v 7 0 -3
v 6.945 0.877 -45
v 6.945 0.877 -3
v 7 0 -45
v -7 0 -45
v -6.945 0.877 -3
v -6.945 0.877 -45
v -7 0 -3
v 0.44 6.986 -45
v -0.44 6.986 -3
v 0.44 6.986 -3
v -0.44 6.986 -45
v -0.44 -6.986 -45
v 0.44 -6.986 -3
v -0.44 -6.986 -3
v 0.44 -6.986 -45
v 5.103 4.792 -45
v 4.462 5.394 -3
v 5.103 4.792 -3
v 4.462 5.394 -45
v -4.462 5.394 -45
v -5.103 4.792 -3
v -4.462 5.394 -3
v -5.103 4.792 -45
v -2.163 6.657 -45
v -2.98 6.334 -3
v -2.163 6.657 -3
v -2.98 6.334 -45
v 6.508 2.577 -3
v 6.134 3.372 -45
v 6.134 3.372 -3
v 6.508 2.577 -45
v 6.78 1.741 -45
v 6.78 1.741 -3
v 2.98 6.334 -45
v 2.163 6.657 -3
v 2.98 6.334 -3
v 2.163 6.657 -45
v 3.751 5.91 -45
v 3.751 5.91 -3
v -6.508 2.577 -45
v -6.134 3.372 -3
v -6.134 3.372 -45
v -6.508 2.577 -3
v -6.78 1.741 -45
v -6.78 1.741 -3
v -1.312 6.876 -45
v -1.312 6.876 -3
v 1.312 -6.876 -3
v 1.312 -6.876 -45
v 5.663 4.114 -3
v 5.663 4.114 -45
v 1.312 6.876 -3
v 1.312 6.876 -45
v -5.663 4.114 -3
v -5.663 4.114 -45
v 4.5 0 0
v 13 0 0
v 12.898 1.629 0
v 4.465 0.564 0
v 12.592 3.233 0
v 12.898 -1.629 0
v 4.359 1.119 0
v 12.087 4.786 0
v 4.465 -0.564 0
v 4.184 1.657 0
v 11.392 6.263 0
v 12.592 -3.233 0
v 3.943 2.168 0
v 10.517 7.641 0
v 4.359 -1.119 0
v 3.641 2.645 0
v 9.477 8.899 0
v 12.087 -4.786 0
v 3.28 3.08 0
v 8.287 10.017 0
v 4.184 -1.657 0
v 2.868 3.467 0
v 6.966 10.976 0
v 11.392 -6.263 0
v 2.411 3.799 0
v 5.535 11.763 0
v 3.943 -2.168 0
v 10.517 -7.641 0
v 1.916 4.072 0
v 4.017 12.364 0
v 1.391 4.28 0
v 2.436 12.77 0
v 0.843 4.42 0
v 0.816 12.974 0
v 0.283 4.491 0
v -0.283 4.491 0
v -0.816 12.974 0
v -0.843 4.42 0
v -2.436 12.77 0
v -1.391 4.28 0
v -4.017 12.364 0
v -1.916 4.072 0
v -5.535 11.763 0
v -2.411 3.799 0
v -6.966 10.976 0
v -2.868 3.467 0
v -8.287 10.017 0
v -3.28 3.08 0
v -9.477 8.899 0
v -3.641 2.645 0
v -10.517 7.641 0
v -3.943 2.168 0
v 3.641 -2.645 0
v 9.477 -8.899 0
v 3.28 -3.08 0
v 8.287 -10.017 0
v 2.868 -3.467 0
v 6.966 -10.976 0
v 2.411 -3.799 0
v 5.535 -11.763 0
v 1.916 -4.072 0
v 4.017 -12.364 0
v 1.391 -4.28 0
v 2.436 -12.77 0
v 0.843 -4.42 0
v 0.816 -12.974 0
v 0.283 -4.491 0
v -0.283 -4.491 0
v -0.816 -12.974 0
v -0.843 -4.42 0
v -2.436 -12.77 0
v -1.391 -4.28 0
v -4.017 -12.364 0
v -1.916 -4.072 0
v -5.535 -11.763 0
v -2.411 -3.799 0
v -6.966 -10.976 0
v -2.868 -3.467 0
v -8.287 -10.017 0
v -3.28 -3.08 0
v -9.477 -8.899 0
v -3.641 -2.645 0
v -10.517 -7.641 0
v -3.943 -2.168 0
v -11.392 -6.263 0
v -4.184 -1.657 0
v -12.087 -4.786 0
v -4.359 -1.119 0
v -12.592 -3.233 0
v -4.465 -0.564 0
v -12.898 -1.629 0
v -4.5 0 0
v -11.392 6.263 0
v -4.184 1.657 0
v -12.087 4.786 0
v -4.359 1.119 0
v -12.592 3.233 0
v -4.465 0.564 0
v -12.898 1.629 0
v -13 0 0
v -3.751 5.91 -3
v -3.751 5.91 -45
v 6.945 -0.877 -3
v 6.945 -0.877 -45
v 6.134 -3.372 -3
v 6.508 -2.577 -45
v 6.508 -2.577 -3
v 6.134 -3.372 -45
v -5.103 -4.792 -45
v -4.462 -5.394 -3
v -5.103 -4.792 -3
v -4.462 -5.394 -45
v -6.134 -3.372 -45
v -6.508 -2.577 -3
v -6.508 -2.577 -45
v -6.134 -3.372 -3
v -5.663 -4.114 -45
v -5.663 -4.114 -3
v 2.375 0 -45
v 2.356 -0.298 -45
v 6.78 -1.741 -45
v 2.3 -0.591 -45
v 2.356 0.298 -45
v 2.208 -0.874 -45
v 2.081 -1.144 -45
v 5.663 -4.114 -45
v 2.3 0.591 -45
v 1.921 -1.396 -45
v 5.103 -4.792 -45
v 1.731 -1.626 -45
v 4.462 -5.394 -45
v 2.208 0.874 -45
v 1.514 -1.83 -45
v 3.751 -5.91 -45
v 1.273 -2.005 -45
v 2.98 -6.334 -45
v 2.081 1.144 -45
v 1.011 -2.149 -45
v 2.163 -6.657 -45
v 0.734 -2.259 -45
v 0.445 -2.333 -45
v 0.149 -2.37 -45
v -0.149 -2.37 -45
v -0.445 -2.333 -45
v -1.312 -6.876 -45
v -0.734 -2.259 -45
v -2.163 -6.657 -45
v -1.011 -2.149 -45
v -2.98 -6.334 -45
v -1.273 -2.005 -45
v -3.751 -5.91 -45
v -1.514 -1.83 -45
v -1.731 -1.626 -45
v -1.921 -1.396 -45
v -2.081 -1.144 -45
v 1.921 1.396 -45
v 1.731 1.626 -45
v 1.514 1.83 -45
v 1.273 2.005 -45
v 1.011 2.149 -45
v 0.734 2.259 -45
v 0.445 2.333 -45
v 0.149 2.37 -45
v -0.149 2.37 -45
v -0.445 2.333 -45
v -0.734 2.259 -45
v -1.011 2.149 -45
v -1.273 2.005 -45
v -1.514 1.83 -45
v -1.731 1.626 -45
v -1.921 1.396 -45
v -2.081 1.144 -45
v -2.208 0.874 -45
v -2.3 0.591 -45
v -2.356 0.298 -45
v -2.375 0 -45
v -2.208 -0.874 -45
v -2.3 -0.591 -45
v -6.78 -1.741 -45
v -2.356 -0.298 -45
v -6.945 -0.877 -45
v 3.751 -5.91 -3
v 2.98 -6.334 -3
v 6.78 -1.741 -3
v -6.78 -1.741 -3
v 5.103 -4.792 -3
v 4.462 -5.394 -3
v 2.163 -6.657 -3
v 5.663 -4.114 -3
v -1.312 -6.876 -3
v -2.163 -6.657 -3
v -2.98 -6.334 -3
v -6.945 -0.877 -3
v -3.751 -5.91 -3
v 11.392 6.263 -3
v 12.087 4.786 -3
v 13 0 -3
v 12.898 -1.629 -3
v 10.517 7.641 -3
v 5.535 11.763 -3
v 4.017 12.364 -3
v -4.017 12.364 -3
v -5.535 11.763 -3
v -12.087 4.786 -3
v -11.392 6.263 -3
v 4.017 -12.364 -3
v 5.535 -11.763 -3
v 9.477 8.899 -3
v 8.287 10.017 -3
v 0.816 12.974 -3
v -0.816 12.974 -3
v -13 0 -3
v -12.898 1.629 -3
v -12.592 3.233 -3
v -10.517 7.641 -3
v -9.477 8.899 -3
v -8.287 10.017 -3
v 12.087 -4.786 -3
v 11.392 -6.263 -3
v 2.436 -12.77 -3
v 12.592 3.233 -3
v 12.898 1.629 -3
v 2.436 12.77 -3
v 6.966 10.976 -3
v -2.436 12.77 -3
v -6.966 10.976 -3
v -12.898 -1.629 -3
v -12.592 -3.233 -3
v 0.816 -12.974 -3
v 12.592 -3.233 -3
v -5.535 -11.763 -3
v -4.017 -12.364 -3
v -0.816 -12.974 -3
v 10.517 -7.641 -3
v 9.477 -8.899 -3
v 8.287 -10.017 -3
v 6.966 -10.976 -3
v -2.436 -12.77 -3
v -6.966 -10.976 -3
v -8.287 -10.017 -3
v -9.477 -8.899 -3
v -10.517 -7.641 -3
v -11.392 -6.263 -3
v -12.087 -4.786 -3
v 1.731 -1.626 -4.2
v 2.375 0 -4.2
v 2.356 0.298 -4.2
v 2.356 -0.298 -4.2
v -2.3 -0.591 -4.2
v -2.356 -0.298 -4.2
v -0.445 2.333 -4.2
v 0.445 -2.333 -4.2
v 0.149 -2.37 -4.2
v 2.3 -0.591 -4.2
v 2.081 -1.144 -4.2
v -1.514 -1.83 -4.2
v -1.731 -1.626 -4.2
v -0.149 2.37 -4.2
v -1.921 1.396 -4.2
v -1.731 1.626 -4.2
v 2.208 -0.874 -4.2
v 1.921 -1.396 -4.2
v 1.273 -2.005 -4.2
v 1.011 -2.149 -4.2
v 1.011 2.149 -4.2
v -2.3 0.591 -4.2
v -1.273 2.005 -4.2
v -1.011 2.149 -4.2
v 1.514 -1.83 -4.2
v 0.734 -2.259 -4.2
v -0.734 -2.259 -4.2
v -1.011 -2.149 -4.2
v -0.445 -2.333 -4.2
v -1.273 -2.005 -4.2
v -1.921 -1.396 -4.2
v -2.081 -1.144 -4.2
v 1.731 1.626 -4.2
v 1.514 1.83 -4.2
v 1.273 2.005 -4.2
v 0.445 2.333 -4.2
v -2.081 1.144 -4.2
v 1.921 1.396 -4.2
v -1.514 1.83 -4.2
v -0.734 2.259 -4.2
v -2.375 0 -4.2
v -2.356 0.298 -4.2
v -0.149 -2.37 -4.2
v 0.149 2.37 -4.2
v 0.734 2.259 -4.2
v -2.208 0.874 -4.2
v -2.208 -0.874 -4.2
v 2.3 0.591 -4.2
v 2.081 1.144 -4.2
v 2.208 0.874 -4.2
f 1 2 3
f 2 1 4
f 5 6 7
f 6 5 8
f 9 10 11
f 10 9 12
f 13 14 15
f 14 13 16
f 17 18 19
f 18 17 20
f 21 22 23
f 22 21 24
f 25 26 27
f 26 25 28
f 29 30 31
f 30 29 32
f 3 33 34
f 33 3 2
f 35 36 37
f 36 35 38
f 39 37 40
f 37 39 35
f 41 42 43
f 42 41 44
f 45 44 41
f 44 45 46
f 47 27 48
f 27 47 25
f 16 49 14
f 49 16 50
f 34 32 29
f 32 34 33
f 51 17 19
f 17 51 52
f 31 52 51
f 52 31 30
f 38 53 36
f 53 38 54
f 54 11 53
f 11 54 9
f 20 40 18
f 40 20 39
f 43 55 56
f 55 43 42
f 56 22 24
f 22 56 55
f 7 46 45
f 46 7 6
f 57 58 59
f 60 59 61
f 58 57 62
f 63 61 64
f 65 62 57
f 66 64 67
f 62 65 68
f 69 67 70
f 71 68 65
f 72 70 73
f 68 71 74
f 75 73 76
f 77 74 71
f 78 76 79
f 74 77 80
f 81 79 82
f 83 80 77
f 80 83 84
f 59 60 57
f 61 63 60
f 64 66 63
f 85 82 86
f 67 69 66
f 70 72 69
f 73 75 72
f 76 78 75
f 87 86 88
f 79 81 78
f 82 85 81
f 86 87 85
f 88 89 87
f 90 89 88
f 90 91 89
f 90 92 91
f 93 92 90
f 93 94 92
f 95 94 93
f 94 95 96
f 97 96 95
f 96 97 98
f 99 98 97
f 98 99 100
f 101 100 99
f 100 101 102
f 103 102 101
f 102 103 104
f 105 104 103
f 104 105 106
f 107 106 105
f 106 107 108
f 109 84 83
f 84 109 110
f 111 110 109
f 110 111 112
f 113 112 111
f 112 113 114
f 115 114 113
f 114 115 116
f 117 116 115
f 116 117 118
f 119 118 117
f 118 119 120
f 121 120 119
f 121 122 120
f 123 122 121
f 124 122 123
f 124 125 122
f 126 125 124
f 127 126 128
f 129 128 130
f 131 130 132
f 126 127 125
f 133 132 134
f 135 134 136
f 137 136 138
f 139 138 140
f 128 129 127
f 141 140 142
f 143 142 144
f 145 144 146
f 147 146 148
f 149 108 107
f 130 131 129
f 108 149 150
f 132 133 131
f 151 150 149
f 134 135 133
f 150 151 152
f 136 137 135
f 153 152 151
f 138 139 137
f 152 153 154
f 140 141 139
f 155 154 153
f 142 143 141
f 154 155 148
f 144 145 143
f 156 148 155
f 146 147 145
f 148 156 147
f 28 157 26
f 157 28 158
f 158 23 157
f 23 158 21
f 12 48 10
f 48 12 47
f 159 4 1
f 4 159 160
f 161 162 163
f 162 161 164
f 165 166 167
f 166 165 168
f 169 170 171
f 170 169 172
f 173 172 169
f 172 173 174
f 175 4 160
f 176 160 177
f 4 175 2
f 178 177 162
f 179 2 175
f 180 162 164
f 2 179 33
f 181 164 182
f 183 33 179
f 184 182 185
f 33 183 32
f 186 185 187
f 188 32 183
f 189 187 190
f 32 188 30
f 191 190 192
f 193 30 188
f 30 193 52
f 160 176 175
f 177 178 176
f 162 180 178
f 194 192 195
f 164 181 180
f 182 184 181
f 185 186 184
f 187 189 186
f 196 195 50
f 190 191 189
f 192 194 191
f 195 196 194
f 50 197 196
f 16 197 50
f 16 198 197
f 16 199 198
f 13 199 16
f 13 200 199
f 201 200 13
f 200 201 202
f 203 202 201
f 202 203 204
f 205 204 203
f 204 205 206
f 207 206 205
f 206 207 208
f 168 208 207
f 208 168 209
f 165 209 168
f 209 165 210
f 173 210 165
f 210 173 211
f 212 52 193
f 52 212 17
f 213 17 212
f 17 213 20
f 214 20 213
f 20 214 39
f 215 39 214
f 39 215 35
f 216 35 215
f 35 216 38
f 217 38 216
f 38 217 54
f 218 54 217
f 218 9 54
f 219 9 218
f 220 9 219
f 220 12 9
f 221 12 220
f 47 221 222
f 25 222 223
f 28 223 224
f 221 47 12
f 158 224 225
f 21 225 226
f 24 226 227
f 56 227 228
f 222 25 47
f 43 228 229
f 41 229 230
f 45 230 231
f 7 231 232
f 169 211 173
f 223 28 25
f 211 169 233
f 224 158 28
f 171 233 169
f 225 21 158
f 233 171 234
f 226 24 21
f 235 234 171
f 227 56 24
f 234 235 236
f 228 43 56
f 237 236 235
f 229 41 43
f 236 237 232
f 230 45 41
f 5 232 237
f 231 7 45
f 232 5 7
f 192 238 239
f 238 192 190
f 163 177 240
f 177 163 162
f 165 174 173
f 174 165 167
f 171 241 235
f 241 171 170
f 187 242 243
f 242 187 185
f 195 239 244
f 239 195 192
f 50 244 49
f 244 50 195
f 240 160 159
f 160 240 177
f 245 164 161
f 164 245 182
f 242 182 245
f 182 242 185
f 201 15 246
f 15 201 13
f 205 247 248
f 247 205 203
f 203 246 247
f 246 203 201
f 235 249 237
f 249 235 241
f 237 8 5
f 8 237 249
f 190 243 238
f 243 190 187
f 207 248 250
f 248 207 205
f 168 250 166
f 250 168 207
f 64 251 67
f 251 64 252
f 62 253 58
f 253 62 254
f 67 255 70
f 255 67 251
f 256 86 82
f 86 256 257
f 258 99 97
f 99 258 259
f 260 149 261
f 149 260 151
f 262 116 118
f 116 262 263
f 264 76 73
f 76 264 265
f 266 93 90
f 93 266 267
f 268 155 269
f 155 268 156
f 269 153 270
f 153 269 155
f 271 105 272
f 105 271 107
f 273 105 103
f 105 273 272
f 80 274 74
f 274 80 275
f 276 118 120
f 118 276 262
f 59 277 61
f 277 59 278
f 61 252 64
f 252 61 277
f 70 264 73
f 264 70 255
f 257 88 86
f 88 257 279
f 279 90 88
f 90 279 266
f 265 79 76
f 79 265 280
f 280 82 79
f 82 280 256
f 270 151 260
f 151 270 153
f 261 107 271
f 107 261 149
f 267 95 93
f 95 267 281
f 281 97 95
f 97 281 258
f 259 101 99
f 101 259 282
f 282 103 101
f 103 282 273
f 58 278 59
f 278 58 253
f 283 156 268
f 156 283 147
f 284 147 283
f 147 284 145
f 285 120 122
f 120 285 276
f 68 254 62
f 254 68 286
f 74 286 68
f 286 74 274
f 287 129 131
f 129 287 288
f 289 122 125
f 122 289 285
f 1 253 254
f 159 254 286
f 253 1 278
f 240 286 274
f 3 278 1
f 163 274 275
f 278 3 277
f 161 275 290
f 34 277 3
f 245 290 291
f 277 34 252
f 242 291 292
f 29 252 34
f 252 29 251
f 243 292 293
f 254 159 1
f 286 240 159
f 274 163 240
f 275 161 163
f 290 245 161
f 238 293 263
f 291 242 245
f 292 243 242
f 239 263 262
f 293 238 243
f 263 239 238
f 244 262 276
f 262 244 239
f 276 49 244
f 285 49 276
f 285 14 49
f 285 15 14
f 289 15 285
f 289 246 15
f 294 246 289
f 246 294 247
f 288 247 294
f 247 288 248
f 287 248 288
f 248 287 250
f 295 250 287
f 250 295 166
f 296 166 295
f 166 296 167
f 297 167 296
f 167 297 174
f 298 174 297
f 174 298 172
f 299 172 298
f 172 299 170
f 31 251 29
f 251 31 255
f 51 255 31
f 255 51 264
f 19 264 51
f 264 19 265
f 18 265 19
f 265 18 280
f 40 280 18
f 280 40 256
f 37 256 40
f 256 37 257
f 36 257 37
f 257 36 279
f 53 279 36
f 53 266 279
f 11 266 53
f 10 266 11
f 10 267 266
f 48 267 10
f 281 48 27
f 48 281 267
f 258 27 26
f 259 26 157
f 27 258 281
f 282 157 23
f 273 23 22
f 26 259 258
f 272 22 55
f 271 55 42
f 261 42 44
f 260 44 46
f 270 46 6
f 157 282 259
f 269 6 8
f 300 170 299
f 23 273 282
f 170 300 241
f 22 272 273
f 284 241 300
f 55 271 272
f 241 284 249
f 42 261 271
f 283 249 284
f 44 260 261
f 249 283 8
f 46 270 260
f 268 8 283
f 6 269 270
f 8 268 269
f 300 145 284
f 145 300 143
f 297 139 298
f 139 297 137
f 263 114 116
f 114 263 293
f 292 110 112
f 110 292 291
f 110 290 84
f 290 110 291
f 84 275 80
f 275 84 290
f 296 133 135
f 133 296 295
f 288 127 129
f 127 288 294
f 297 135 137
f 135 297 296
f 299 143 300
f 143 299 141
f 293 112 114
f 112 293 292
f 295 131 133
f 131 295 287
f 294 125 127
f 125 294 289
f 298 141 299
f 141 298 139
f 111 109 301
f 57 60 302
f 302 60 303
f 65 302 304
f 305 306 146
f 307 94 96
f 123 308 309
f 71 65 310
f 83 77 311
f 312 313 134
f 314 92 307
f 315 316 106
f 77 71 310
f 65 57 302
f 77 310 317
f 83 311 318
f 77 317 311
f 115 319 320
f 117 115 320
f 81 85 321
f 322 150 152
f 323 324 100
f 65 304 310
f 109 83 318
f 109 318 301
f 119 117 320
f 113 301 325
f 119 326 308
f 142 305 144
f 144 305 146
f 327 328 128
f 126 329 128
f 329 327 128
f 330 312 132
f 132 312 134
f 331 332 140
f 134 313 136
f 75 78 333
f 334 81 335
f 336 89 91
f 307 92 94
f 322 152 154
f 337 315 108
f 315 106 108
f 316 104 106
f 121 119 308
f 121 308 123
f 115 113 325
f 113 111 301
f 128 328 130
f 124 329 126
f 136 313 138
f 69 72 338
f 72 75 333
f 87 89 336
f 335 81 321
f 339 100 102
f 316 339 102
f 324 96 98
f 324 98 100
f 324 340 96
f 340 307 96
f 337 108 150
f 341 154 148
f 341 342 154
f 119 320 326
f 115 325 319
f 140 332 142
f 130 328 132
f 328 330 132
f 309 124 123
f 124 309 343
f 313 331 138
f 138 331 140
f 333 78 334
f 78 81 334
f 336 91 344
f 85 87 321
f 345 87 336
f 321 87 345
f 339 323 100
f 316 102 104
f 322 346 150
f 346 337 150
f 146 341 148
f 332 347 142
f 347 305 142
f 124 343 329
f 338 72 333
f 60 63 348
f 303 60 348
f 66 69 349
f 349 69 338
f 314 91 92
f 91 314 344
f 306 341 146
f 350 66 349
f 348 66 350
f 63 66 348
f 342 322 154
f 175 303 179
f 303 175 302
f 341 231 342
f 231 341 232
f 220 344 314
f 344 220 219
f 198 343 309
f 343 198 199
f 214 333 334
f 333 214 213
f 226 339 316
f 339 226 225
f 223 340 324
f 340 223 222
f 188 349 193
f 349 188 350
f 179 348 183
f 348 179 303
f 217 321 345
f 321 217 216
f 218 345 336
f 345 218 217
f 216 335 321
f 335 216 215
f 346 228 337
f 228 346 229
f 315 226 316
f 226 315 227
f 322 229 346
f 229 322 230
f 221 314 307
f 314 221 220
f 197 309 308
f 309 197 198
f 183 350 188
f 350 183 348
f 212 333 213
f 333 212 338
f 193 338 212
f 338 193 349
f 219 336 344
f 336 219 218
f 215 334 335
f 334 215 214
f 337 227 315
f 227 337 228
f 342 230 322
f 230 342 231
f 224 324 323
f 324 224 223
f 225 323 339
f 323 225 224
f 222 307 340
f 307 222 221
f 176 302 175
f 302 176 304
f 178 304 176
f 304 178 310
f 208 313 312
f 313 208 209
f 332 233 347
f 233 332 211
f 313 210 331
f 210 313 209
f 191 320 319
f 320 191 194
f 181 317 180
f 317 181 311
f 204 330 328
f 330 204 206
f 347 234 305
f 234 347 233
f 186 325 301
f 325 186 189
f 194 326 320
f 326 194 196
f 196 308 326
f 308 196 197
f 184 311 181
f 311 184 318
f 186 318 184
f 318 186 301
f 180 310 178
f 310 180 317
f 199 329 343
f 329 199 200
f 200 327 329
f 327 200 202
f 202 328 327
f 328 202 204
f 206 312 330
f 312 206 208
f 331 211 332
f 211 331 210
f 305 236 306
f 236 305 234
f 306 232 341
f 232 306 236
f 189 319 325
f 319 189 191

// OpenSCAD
$fn = 50;


difference() {
	union() {
		translate(v = [0, 0, -45.0000000000]) {
			cylinder(h = 45, r = 7.0000000000);
		}
		translate(v = [0, 0, -3.0000000000]) {
			cylinder(h = 3, r = 13.0000000000);
		}
	}
	union() {
		translate(v = [0, 0, 0]) {
			rotate(a = [0, 0, 0]) {
				difference() {
					union() {
						#translate(v = [0, 0, -45.0000000000]) {
							cylinder(h = 45, r = 2.2500000000);
						}
						#translate(v = [0, 0, -4.2000000000]) {
							cylinder(h = 4.2000000000, r = 7.0000000000, r1 = 2.3750000000, r2 = 4.5000000000);
						}
						#translate(v = [0, 0, -45.0000000000]) {
							cylinder(h = 45, r = 2.3750000000);
						}
						#translate(v = [0, 0, -45.0000000000]) {
							cylinder(h = 45, r = 2.2500000000);
						}
					}
					union();
				}
			}
		}
	}
}
